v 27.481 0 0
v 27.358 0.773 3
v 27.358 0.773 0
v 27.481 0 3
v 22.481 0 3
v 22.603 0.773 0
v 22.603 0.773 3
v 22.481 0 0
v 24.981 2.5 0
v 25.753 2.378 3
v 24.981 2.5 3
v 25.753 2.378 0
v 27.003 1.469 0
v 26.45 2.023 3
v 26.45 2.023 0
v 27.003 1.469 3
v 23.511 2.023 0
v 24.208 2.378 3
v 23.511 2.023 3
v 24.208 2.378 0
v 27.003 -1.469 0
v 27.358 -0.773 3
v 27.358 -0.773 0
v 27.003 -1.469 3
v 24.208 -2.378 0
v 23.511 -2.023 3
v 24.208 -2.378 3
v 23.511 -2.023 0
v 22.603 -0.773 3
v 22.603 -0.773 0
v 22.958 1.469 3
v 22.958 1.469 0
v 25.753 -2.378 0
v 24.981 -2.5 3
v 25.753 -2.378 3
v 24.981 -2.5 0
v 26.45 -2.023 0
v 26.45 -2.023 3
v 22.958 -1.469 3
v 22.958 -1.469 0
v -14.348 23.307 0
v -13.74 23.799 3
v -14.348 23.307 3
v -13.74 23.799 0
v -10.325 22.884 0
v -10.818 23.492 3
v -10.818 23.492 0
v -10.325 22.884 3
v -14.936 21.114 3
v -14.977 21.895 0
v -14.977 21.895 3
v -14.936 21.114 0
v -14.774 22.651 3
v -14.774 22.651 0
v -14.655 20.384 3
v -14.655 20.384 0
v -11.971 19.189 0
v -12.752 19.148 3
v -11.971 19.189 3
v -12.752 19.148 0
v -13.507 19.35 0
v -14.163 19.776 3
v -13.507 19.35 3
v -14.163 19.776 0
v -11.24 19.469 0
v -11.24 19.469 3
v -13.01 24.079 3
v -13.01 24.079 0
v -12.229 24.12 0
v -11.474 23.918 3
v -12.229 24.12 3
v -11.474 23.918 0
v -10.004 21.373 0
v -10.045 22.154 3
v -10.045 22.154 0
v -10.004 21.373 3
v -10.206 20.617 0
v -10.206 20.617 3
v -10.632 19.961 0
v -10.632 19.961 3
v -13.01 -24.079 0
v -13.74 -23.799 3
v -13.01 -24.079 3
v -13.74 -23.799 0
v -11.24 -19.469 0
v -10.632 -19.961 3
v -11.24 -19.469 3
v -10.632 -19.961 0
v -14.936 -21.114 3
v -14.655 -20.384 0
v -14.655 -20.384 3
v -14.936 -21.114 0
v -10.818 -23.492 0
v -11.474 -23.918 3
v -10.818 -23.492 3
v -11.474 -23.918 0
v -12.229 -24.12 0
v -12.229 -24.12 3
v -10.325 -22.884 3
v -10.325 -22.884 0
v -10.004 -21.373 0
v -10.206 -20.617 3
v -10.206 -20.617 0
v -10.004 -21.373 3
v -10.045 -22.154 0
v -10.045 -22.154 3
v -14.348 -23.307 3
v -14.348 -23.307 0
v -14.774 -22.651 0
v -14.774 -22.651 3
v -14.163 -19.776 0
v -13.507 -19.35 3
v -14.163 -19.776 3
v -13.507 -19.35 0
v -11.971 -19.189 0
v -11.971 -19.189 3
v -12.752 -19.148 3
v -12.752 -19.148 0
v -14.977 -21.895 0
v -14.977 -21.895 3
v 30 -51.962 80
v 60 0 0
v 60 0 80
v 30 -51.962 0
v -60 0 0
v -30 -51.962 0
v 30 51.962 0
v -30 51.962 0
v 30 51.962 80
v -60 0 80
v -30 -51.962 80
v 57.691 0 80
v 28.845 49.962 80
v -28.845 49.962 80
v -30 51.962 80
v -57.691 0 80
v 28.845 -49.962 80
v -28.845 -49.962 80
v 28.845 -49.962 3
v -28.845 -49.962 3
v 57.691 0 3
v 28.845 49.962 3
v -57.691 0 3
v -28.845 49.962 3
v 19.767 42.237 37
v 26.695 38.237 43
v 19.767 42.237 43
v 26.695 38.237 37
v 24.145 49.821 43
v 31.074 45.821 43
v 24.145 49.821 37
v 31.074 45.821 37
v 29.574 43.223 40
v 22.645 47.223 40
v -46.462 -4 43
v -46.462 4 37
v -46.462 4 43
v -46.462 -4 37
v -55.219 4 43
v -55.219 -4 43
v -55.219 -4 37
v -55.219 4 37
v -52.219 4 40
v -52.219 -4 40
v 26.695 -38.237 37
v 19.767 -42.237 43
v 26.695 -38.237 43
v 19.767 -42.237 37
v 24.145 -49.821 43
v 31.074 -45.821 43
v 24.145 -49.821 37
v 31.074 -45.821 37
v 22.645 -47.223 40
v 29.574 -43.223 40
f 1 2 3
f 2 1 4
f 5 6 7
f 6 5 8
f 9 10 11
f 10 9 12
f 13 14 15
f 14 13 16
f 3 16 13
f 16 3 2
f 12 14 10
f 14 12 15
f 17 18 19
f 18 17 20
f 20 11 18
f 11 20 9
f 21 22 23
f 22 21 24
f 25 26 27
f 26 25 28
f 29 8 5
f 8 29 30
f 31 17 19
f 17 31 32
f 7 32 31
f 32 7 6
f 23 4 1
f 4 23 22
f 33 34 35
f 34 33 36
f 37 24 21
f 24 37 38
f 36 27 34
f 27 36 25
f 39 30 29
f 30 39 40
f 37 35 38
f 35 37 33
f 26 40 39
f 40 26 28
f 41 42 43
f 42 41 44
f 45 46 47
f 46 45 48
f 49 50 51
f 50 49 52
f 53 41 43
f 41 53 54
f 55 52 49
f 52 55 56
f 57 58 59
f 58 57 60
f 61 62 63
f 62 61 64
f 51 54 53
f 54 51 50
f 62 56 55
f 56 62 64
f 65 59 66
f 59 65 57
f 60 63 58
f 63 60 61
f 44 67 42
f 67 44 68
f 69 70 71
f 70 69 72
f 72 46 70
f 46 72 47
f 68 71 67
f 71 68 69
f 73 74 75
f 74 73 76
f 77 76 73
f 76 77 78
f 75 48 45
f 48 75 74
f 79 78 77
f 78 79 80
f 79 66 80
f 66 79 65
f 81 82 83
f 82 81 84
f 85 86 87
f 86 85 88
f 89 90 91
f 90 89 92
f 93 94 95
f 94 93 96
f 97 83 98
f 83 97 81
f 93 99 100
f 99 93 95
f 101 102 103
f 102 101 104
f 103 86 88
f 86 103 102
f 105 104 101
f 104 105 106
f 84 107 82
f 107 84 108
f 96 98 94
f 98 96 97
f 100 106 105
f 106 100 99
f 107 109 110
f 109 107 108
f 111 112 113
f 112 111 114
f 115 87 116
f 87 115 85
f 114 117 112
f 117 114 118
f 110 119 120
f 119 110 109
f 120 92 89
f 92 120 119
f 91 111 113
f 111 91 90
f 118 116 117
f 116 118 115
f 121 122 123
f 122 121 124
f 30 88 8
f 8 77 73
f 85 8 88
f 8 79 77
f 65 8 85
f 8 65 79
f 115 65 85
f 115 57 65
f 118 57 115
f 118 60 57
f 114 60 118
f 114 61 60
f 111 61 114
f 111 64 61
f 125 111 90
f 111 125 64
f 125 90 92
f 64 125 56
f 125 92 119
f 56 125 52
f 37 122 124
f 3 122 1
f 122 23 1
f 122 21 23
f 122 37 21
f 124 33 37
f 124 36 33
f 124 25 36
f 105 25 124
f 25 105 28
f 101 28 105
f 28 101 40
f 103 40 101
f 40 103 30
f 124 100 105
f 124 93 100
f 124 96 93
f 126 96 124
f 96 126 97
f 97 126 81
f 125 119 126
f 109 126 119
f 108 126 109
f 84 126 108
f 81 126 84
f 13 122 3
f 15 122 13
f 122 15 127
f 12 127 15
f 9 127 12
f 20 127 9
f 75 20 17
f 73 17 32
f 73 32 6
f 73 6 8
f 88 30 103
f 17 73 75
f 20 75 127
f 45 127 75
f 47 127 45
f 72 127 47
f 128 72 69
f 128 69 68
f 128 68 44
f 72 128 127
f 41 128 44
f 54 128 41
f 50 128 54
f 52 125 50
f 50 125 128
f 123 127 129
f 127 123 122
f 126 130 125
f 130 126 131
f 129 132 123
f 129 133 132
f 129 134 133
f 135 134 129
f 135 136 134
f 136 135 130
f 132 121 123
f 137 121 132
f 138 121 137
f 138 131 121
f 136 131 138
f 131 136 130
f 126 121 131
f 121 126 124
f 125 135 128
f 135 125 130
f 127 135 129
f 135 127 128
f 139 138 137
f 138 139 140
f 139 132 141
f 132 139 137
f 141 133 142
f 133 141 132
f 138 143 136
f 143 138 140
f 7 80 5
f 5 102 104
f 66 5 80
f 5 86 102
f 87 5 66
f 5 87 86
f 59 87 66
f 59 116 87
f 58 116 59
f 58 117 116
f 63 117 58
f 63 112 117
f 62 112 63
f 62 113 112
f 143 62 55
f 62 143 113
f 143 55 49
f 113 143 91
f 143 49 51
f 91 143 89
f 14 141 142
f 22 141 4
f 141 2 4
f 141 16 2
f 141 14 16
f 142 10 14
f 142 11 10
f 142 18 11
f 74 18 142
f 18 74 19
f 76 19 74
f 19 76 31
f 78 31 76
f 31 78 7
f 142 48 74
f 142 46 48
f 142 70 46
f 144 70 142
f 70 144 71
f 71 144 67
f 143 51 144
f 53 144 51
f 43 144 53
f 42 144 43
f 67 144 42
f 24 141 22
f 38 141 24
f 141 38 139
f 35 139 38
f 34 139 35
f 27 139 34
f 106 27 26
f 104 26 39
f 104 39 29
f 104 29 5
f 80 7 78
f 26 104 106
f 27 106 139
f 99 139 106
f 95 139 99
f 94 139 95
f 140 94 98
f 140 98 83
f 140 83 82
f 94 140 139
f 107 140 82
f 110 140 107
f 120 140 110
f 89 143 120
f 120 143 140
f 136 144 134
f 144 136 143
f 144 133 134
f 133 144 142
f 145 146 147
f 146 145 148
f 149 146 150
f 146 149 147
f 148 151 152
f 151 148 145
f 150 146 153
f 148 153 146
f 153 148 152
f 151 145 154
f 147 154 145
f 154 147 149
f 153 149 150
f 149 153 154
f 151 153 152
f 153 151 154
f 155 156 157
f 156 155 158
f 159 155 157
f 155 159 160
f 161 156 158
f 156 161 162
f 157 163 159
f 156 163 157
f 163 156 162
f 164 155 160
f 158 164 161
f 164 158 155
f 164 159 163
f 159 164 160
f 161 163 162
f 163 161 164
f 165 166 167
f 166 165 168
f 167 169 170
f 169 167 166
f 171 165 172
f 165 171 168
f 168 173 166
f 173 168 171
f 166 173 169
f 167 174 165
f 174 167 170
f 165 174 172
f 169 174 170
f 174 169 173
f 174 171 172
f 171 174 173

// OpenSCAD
// Modular Planter - Medium (Medium succulent planter)
// Generated by customizer.py

// Parameters
hex_size = 60;
height = 80;
wall_thickness = 2;
bottom_thickness = 3;
drainage_hole_d = 5;
connector_depth = 5;
connector_tolerance = 0.3;

// Derived values
apothem = hex_size * sqrt(3) / 2;
inner_apothem = apothem - wall_thickness;

// Main planter module
module planter_module() {
    difference() {
        linear_extrude(height = height)
            hexagon(apothem);
        
        translate([0, 0, bottom_thickness])
            linear_extrude(height = height - bottom_thickness + 1)
                hexagon(inner_apothem);
        
        for (i = [0:2]) {
            rotate([0, 0, i * 120])
                translate([inner_apothem * 0.5, 0, -1])
                    cylinder(d = drainage_hole_d, h = bottom_thickness + 2, $fn=20);
        }
    }
    
    for (i = [0:2]) {
        rotate([0, 0, i * 120 + 60])
            translate([apothem - 0.5, 0, height * 0.5])
                connector_male();
    }
}

module hexagon(r) {
    circle(r = r / cos(30), $fn = 6);
}

module connector_male() {
    difference() {
        cube([connector_depth * 2, 8, 6], center = true);
        translate([connector_depth, 0, 0])
            rotate([0, 45, 0])
                cube([6, 10, 6], center = true);
    }
}

planter_module();
